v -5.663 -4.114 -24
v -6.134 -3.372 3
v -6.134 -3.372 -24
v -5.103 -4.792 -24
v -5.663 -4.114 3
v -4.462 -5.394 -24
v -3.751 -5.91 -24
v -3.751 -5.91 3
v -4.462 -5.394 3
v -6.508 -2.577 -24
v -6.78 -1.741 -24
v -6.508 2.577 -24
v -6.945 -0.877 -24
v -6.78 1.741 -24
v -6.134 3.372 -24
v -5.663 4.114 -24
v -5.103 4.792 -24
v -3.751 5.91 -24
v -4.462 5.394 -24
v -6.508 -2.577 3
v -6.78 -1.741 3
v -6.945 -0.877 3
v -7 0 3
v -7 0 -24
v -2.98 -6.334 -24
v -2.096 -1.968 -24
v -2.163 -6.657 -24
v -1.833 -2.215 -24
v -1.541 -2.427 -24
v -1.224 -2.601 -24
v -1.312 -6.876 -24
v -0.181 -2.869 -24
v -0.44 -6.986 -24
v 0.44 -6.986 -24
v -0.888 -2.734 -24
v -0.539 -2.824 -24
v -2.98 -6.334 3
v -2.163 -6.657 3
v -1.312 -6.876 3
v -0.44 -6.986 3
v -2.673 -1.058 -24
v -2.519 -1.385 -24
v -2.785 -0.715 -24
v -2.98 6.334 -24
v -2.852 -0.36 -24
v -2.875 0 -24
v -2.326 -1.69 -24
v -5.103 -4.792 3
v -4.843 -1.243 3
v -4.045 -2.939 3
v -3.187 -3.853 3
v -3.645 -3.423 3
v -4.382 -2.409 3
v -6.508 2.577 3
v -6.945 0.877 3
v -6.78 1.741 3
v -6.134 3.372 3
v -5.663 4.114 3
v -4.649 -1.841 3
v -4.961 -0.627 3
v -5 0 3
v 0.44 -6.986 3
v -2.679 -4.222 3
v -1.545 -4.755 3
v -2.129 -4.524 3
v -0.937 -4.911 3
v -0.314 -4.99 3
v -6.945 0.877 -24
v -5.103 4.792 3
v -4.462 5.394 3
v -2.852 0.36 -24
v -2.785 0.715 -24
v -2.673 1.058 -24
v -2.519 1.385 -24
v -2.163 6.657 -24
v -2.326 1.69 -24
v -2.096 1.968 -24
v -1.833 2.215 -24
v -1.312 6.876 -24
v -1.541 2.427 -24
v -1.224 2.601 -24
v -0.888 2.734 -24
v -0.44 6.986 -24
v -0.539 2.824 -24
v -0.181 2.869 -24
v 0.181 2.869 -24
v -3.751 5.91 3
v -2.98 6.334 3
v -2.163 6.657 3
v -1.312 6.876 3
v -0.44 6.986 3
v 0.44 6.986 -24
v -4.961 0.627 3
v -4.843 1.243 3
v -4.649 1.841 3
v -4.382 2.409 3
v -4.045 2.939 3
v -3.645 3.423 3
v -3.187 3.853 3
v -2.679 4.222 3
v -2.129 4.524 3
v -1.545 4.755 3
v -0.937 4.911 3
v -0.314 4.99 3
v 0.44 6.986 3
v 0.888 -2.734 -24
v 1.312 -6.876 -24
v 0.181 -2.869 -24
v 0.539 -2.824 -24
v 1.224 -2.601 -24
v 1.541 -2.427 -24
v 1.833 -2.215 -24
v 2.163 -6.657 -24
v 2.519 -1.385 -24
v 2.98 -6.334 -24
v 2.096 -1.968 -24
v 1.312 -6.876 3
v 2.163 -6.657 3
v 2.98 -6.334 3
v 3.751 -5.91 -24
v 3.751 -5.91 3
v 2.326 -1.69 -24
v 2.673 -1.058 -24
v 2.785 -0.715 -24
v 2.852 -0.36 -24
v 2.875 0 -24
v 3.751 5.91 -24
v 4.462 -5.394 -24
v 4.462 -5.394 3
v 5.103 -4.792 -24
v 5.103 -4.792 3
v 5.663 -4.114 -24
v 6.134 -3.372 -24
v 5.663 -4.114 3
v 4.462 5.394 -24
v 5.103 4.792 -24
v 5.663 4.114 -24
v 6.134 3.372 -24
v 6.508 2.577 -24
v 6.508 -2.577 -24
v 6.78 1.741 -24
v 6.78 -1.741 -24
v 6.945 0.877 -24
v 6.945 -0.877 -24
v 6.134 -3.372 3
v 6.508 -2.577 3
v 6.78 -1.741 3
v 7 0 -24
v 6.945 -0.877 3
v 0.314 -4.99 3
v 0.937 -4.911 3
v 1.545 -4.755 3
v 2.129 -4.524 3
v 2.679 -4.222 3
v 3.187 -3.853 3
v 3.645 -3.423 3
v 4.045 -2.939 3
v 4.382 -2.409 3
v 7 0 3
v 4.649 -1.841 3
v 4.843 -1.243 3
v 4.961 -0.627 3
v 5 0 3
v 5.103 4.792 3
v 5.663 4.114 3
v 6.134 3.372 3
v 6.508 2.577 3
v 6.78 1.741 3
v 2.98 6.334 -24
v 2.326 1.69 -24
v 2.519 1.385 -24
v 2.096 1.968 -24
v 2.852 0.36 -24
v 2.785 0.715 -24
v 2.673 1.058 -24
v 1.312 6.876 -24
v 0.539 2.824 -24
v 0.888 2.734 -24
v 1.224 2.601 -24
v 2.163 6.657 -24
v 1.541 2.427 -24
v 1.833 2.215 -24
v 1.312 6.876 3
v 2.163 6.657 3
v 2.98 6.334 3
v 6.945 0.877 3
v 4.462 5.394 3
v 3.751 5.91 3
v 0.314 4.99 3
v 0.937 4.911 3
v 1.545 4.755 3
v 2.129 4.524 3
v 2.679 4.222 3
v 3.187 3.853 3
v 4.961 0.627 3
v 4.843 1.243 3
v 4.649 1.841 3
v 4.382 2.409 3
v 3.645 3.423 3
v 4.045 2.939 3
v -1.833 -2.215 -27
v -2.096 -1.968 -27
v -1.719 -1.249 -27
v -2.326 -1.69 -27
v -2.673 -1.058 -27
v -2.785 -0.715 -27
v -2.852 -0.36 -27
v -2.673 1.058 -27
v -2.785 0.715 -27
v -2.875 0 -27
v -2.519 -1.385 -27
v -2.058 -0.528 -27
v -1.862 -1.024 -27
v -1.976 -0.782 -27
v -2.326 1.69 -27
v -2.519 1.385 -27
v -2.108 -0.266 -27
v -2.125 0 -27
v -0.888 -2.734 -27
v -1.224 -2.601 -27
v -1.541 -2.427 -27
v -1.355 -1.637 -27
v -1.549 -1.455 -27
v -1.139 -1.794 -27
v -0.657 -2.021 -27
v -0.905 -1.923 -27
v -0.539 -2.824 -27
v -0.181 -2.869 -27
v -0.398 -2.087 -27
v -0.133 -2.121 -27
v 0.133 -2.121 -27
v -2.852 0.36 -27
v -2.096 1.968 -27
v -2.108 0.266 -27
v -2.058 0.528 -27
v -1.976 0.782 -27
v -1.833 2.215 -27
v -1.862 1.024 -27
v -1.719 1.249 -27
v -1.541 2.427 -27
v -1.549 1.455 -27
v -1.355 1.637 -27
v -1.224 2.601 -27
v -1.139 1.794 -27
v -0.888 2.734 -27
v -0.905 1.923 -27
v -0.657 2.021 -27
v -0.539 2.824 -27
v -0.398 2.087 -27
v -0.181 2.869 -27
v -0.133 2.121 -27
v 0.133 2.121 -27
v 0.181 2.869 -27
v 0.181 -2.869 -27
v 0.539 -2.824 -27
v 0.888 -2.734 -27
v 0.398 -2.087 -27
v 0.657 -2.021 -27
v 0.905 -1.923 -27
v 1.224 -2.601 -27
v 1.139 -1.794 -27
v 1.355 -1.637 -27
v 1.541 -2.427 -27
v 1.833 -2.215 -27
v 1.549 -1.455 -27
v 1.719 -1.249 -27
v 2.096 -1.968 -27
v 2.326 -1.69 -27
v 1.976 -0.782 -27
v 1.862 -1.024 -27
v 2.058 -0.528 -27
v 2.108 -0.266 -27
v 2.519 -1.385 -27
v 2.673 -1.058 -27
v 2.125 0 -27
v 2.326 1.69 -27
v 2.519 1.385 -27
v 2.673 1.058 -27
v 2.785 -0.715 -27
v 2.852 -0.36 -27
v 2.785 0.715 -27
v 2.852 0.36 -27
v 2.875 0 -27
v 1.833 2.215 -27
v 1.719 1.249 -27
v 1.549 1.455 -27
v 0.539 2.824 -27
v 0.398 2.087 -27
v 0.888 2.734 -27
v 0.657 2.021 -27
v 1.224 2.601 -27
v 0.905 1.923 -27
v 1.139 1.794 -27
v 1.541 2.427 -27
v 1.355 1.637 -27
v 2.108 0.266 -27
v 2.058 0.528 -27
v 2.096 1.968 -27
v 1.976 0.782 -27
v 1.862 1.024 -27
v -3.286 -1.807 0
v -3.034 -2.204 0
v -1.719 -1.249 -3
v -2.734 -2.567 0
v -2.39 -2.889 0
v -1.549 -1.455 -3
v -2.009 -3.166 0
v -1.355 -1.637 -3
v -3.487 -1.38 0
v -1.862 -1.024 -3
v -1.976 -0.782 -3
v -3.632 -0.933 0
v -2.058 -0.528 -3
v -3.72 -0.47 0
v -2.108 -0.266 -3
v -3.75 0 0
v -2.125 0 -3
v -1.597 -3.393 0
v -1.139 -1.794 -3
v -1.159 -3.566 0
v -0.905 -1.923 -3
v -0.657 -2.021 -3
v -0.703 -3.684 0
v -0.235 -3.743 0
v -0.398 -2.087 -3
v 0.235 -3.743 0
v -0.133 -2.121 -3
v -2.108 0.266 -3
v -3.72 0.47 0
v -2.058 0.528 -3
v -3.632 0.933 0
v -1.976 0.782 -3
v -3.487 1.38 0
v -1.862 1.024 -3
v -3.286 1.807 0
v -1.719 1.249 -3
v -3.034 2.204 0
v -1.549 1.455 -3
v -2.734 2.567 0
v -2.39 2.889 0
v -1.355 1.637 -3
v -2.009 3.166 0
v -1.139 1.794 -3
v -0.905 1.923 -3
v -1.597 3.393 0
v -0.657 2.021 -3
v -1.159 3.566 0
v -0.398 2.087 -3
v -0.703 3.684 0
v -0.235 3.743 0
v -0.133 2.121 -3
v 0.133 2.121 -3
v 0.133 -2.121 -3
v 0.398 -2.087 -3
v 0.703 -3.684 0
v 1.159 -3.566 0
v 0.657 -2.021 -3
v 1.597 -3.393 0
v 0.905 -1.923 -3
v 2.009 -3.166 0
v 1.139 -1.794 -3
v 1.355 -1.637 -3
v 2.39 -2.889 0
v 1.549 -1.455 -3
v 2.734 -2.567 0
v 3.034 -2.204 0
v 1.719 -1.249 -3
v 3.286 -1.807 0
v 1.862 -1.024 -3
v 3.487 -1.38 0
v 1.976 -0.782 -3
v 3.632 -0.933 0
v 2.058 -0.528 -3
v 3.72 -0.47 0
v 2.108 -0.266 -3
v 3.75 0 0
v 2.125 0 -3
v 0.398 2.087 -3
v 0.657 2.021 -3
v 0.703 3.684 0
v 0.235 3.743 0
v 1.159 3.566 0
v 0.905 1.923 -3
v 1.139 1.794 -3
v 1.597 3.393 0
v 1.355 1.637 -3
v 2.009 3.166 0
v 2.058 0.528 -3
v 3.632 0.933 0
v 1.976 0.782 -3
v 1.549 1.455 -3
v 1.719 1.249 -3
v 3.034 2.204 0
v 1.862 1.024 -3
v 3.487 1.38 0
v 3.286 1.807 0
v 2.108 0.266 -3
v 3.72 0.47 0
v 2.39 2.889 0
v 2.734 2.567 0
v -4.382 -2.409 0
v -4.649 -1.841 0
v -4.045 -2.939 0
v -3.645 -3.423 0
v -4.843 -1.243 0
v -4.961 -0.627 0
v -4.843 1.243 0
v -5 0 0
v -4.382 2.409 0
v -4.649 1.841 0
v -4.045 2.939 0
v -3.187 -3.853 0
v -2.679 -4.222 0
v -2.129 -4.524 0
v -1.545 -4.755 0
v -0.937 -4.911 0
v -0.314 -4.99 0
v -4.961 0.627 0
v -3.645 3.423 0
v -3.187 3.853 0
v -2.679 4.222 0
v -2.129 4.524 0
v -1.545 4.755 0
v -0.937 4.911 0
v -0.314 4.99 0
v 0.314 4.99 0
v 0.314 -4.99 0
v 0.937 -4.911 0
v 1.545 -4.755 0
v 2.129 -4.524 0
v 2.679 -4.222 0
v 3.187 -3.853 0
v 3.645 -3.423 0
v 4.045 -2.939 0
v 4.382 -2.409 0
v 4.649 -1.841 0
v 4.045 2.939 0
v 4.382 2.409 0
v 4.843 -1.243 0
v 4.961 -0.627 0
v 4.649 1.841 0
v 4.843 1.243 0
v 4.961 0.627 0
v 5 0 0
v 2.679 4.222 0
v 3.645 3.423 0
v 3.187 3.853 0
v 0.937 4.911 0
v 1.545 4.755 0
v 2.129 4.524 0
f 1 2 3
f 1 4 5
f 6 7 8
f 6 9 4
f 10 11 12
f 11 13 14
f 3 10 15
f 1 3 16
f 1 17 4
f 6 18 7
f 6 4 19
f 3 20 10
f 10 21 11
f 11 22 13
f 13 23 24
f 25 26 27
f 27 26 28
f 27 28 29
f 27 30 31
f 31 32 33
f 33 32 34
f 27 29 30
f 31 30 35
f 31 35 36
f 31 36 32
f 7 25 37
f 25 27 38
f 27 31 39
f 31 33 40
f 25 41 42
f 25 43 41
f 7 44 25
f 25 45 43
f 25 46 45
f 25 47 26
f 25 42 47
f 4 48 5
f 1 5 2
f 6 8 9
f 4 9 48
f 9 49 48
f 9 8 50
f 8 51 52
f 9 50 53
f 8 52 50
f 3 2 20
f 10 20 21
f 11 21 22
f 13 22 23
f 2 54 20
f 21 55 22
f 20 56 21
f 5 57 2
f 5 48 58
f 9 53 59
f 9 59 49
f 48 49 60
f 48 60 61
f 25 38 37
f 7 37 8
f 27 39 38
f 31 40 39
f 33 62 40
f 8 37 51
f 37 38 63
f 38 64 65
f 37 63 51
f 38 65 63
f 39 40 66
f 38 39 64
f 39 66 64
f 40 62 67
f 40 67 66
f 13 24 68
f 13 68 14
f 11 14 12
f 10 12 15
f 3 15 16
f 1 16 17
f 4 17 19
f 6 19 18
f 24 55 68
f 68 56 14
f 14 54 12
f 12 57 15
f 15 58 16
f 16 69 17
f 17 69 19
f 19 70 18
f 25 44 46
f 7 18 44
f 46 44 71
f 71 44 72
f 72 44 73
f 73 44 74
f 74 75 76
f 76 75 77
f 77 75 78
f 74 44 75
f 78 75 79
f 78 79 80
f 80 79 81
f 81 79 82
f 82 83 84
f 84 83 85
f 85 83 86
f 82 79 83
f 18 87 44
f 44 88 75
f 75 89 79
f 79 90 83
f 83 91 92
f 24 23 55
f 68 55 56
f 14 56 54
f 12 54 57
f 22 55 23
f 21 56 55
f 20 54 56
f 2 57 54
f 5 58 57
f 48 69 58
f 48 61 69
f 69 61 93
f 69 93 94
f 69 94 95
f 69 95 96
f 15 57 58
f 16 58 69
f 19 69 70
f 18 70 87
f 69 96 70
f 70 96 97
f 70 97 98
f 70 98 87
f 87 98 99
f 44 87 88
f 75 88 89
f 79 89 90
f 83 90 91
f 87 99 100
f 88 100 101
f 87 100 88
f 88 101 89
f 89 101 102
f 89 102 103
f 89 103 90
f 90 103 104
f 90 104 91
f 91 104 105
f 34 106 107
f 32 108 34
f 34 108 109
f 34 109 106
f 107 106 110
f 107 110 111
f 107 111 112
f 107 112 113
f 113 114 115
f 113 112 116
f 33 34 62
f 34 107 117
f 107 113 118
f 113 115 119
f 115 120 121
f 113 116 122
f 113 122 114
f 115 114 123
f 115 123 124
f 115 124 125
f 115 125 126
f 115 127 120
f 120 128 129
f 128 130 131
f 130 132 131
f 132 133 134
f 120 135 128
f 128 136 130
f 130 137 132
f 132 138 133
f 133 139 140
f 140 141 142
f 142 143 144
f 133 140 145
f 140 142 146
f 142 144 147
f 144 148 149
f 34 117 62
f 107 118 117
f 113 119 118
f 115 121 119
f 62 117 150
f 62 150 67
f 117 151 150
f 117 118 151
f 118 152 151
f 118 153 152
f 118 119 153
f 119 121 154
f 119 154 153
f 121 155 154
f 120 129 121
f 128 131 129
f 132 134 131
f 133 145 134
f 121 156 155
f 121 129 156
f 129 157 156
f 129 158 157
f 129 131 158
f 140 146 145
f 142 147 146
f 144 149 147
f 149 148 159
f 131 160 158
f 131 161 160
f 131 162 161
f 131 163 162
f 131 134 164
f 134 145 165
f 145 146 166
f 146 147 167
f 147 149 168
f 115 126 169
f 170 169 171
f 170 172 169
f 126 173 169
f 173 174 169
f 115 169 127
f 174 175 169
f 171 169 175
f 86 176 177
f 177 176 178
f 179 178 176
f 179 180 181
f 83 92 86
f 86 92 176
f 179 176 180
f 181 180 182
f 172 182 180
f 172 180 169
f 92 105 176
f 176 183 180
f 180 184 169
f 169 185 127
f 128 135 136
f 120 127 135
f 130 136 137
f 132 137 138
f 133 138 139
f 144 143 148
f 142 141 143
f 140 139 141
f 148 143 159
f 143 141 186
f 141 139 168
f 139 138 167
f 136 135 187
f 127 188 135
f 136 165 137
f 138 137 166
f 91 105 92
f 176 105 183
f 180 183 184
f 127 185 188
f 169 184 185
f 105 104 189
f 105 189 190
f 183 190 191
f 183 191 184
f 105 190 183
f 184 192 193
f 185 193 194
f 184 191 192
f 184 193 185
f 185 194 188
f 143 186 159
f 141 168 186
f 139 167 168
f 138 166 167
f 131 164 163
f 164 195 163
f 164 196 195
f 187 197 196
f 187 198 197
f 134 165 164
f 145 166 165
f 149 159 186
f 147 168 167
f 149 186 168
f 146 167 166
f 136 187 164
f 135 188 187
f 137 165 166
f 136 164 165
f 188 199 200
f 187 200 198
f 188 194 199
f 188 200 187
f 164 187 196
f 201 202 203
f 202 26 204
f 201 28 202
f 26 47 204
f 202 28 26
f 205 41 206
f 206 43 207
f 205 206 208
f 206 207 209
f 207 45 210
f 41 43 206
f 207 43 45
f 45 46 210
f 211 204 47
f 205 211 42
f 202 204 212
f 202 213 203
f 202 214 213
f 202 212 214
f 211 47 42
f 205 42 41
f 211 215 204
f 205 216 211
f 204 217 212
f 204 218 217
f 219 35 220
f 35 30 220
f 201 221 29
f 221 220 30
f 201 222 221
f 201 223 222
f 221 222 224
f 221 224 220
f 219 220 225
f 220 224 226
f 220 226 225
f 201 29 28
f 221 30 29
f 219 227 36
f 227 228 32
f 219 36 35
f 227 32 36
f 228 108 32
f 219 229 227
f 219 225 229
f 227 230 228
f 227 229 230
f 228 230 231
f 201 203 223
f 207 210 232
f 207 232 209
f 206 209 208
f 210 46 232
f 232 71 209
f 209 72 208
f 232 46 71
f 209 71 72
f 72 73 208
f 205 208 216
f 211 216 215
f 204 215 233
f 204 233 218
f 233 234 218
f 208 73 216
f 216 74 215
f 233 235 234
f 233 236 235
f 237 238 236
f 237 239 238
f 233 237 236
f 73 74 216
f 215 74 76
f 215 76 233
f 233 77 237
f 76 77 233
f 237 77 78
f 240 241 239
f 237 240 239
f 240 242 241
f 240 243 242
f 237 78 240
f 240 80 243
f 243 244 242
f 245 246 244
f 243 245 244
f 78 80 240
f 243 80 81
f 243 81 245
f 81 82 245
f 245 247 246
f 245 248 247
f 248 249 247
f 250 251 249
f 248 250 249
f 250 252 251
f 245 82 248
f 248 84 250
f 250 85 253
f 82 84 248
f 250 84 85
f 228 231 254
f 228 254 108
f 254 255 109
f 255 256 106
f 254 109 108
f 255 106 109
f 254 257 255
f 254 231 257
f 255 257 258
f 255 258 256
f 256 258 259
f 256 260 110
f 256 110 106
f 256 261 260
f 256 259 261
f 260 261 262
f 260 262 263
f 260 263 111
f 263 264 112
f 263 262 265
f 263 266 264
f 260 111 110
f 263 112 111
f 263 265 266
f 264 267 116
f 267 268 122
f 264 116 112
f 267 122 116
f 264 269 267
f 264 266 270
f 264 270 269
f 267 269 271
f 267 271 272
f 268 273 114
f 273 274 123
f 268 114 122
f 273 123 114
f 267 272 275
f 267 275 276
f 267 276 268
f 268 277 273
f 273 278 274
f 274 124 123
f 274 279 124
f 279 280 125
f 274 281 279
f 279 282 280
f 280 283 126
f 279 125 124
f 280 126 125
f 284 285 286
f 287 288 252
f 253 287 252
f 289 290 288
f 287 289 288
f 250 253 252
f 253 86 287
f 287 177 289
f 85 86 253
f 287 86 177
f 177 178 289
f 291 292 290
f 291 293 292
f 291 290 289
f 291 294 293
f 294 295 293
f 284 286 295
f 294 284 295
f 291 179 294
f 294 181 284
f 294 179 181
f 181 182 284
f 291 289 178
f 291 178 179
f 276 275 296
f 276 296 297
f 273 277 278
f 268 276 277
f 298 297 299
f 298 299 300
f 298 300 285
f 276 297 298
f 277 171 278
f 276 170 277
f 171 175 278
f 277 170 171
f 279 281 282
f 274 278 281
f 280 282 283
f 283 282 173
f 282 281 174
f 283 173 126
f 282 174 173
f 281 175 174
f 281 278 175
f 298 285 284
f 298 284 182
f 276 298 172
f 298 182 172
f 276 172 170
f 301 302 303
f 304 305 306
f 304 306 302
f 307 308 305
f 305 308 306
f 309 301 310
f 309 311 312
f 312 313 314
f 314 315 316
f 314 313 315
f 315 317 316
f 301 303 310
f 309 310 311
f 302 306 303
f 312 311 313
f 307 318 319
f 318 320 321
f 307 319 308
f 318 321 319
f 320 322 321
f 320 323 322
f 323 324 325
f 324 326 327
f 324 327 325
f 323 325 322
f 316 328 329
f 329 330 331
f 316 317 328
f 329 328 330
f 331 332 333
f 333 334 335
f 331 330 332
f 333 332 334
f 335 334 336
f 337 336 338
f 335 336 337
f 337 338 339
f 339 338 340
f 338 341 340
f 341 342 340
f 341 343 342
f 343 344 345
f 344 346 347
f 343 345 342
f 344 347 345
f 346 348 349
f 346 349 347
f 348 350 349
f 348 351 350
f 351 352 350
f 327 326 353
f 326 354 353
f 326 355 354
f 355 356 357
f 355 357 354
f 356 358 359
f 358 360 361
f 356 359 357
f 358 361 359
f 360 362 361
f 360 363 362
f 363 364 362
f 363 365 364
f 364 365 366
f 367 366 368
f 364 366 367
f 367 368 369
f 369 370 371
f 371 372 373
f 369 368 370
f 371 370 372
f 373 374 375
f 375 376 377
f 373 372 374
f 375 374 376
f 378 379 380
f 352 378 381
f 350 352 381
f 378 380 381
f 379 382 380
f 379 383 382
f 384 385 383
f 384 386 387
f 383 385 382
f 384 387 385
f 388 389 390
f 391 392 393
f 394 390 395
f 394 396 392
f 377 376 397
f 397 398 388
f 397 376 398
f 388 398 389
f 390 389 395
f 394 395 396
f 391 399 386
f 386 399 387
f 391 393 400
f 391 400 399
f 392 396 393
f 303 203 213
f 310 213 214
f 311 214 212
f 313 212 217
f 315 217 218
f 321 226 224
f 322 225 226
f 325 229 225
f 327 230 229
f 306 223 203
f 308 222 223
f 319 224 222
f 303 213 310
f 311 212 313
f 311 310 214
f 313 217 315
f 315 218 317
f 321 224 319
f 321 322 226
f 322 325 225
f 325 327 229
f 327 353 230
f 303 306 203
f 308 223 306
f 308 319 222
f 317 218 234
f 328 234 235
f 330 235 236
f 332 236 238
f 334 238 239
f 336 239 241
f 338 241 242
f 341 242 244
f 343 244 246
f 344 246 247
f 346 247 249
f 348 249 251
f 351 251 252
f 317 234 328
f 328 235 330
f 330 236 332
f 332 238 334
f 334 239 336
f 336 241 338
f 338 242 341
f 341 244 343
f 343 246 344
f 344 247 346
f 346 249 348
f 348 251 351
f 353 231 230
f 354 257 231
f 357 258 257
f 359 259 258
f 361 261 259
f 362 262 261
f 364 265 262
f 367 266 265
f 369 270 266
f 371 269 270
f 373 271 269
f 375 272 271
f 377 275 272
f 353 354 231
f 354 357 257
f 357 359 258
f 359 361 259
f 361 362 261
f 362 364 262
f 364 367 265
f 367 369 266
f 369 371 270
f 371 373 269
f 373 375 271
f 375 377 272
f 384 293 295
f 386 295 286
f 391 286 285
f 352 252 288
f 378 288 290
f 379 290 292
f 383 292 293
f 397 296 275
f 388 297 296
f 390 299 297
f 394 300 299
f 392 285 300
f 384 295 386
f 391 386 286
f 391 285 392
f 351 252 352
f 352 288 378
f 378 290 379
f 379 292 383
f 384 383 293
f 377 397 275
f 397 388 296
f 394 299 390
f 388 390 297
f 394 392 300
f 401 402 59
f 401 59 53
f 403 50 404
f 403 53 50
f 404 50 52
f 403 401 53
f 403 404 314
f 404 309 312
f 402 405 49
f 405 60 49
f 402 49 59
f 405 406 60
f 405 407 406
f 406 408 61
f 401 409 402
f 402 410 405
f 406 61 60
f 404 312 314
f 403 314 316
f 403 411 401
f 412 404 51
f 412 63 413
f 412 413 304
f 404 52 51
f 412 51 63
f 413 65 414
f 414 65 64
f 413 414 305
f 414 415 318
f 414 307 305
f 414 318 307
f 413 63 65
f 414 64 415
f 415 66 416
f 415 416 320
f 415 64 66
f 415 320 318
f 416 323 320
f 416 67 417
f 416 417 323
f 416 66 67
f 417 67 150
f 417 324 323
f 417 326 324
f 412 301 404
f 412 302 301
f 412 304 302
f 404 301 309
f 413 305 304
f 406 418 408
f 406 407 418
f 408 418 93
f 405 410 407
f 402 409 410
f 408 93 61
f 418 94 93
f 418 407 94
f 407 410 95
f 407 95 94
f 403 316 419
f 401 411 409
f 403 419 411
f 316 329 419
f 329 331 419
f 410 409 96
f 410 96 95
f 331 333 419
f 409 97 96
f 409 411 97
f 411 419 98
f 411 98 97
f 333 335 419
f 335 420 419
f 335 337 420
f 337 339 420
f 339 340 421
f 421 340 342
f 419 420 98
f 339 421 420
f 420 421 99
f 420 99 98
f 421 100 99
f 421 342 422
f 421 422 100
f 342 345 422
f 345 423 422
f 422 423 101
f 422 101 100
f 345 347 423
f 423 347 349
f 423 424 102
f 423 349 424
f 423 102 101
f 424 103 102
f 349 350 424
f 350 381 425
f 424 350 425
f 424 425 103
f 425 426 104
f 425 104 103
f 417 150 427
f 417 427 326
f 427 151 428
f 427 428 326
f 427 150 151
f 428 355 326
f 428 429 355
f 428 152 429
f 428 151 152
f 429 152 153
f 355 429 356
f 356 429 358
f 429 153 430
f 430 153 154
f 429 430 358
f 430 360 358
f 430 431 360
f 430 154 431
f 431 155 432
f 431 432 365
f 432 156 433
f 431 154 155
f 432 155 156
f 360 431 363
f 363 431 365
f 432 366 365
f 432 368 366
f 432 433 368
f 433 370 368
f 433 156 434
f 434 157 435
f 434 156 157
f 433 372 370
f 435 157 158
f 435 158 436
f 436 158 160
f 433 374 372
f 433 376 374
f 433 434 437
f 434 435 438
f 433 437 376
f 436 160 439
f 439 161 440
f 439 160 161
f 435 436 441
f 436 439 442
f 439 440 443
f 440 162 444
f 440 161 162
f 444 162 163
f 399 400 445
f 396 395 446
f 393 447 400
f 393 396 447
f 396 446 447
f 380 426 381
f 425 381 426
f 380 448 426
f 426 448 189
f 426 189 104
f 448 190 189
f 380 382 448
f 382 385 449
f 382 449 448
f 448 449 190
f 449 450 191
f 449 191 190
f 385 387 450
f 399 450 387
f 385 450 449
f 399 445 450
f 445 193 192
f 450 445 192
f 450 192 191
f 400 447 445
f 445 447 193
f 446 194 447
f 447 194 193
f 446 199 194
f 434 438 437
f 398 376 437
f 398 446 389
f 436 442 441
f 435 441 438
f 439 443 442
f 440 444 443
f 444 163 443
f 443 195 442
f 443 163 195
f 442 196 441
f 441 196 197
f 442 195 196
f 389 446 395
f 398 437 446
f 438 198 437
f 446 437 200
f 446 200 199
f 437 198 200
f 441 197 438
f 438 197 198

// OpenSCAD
$fn = 50;

difference() {
	union() {
		translate(v = [0, 0, -24.0]) {
			cylinder(h = 27, r = 7.0);
		}
		#translate(v = [0, 0, -27.0]) {
			cylinder(h = 27, r = 2.875);
		}
	}
	union() {
		translate(v = [0, 0, 0]) {
			rotate(a = [0, 0, 0]) {
				difference() {
					union() {
						translate(v = [0, 0, -27.0]) {
							cylinder(h = 27, r = 2.0);
						}
						translate(v = [0, 0, -3]) {
							cylinder(h = 3, r1 = 2.125, r2 = 3.75);
						}
						translate(v = [0, 0, -27.0]) {
							cylinder(h = 27, r = 2.125);
						}
						translate(v = [0, 0, -27.0]) {
							cylinder(h = 27, r = 2.0);
						}
					}
					union();
				}
			}
		}
		#cylinder(h = 3, r = 5.0);
	}
}
